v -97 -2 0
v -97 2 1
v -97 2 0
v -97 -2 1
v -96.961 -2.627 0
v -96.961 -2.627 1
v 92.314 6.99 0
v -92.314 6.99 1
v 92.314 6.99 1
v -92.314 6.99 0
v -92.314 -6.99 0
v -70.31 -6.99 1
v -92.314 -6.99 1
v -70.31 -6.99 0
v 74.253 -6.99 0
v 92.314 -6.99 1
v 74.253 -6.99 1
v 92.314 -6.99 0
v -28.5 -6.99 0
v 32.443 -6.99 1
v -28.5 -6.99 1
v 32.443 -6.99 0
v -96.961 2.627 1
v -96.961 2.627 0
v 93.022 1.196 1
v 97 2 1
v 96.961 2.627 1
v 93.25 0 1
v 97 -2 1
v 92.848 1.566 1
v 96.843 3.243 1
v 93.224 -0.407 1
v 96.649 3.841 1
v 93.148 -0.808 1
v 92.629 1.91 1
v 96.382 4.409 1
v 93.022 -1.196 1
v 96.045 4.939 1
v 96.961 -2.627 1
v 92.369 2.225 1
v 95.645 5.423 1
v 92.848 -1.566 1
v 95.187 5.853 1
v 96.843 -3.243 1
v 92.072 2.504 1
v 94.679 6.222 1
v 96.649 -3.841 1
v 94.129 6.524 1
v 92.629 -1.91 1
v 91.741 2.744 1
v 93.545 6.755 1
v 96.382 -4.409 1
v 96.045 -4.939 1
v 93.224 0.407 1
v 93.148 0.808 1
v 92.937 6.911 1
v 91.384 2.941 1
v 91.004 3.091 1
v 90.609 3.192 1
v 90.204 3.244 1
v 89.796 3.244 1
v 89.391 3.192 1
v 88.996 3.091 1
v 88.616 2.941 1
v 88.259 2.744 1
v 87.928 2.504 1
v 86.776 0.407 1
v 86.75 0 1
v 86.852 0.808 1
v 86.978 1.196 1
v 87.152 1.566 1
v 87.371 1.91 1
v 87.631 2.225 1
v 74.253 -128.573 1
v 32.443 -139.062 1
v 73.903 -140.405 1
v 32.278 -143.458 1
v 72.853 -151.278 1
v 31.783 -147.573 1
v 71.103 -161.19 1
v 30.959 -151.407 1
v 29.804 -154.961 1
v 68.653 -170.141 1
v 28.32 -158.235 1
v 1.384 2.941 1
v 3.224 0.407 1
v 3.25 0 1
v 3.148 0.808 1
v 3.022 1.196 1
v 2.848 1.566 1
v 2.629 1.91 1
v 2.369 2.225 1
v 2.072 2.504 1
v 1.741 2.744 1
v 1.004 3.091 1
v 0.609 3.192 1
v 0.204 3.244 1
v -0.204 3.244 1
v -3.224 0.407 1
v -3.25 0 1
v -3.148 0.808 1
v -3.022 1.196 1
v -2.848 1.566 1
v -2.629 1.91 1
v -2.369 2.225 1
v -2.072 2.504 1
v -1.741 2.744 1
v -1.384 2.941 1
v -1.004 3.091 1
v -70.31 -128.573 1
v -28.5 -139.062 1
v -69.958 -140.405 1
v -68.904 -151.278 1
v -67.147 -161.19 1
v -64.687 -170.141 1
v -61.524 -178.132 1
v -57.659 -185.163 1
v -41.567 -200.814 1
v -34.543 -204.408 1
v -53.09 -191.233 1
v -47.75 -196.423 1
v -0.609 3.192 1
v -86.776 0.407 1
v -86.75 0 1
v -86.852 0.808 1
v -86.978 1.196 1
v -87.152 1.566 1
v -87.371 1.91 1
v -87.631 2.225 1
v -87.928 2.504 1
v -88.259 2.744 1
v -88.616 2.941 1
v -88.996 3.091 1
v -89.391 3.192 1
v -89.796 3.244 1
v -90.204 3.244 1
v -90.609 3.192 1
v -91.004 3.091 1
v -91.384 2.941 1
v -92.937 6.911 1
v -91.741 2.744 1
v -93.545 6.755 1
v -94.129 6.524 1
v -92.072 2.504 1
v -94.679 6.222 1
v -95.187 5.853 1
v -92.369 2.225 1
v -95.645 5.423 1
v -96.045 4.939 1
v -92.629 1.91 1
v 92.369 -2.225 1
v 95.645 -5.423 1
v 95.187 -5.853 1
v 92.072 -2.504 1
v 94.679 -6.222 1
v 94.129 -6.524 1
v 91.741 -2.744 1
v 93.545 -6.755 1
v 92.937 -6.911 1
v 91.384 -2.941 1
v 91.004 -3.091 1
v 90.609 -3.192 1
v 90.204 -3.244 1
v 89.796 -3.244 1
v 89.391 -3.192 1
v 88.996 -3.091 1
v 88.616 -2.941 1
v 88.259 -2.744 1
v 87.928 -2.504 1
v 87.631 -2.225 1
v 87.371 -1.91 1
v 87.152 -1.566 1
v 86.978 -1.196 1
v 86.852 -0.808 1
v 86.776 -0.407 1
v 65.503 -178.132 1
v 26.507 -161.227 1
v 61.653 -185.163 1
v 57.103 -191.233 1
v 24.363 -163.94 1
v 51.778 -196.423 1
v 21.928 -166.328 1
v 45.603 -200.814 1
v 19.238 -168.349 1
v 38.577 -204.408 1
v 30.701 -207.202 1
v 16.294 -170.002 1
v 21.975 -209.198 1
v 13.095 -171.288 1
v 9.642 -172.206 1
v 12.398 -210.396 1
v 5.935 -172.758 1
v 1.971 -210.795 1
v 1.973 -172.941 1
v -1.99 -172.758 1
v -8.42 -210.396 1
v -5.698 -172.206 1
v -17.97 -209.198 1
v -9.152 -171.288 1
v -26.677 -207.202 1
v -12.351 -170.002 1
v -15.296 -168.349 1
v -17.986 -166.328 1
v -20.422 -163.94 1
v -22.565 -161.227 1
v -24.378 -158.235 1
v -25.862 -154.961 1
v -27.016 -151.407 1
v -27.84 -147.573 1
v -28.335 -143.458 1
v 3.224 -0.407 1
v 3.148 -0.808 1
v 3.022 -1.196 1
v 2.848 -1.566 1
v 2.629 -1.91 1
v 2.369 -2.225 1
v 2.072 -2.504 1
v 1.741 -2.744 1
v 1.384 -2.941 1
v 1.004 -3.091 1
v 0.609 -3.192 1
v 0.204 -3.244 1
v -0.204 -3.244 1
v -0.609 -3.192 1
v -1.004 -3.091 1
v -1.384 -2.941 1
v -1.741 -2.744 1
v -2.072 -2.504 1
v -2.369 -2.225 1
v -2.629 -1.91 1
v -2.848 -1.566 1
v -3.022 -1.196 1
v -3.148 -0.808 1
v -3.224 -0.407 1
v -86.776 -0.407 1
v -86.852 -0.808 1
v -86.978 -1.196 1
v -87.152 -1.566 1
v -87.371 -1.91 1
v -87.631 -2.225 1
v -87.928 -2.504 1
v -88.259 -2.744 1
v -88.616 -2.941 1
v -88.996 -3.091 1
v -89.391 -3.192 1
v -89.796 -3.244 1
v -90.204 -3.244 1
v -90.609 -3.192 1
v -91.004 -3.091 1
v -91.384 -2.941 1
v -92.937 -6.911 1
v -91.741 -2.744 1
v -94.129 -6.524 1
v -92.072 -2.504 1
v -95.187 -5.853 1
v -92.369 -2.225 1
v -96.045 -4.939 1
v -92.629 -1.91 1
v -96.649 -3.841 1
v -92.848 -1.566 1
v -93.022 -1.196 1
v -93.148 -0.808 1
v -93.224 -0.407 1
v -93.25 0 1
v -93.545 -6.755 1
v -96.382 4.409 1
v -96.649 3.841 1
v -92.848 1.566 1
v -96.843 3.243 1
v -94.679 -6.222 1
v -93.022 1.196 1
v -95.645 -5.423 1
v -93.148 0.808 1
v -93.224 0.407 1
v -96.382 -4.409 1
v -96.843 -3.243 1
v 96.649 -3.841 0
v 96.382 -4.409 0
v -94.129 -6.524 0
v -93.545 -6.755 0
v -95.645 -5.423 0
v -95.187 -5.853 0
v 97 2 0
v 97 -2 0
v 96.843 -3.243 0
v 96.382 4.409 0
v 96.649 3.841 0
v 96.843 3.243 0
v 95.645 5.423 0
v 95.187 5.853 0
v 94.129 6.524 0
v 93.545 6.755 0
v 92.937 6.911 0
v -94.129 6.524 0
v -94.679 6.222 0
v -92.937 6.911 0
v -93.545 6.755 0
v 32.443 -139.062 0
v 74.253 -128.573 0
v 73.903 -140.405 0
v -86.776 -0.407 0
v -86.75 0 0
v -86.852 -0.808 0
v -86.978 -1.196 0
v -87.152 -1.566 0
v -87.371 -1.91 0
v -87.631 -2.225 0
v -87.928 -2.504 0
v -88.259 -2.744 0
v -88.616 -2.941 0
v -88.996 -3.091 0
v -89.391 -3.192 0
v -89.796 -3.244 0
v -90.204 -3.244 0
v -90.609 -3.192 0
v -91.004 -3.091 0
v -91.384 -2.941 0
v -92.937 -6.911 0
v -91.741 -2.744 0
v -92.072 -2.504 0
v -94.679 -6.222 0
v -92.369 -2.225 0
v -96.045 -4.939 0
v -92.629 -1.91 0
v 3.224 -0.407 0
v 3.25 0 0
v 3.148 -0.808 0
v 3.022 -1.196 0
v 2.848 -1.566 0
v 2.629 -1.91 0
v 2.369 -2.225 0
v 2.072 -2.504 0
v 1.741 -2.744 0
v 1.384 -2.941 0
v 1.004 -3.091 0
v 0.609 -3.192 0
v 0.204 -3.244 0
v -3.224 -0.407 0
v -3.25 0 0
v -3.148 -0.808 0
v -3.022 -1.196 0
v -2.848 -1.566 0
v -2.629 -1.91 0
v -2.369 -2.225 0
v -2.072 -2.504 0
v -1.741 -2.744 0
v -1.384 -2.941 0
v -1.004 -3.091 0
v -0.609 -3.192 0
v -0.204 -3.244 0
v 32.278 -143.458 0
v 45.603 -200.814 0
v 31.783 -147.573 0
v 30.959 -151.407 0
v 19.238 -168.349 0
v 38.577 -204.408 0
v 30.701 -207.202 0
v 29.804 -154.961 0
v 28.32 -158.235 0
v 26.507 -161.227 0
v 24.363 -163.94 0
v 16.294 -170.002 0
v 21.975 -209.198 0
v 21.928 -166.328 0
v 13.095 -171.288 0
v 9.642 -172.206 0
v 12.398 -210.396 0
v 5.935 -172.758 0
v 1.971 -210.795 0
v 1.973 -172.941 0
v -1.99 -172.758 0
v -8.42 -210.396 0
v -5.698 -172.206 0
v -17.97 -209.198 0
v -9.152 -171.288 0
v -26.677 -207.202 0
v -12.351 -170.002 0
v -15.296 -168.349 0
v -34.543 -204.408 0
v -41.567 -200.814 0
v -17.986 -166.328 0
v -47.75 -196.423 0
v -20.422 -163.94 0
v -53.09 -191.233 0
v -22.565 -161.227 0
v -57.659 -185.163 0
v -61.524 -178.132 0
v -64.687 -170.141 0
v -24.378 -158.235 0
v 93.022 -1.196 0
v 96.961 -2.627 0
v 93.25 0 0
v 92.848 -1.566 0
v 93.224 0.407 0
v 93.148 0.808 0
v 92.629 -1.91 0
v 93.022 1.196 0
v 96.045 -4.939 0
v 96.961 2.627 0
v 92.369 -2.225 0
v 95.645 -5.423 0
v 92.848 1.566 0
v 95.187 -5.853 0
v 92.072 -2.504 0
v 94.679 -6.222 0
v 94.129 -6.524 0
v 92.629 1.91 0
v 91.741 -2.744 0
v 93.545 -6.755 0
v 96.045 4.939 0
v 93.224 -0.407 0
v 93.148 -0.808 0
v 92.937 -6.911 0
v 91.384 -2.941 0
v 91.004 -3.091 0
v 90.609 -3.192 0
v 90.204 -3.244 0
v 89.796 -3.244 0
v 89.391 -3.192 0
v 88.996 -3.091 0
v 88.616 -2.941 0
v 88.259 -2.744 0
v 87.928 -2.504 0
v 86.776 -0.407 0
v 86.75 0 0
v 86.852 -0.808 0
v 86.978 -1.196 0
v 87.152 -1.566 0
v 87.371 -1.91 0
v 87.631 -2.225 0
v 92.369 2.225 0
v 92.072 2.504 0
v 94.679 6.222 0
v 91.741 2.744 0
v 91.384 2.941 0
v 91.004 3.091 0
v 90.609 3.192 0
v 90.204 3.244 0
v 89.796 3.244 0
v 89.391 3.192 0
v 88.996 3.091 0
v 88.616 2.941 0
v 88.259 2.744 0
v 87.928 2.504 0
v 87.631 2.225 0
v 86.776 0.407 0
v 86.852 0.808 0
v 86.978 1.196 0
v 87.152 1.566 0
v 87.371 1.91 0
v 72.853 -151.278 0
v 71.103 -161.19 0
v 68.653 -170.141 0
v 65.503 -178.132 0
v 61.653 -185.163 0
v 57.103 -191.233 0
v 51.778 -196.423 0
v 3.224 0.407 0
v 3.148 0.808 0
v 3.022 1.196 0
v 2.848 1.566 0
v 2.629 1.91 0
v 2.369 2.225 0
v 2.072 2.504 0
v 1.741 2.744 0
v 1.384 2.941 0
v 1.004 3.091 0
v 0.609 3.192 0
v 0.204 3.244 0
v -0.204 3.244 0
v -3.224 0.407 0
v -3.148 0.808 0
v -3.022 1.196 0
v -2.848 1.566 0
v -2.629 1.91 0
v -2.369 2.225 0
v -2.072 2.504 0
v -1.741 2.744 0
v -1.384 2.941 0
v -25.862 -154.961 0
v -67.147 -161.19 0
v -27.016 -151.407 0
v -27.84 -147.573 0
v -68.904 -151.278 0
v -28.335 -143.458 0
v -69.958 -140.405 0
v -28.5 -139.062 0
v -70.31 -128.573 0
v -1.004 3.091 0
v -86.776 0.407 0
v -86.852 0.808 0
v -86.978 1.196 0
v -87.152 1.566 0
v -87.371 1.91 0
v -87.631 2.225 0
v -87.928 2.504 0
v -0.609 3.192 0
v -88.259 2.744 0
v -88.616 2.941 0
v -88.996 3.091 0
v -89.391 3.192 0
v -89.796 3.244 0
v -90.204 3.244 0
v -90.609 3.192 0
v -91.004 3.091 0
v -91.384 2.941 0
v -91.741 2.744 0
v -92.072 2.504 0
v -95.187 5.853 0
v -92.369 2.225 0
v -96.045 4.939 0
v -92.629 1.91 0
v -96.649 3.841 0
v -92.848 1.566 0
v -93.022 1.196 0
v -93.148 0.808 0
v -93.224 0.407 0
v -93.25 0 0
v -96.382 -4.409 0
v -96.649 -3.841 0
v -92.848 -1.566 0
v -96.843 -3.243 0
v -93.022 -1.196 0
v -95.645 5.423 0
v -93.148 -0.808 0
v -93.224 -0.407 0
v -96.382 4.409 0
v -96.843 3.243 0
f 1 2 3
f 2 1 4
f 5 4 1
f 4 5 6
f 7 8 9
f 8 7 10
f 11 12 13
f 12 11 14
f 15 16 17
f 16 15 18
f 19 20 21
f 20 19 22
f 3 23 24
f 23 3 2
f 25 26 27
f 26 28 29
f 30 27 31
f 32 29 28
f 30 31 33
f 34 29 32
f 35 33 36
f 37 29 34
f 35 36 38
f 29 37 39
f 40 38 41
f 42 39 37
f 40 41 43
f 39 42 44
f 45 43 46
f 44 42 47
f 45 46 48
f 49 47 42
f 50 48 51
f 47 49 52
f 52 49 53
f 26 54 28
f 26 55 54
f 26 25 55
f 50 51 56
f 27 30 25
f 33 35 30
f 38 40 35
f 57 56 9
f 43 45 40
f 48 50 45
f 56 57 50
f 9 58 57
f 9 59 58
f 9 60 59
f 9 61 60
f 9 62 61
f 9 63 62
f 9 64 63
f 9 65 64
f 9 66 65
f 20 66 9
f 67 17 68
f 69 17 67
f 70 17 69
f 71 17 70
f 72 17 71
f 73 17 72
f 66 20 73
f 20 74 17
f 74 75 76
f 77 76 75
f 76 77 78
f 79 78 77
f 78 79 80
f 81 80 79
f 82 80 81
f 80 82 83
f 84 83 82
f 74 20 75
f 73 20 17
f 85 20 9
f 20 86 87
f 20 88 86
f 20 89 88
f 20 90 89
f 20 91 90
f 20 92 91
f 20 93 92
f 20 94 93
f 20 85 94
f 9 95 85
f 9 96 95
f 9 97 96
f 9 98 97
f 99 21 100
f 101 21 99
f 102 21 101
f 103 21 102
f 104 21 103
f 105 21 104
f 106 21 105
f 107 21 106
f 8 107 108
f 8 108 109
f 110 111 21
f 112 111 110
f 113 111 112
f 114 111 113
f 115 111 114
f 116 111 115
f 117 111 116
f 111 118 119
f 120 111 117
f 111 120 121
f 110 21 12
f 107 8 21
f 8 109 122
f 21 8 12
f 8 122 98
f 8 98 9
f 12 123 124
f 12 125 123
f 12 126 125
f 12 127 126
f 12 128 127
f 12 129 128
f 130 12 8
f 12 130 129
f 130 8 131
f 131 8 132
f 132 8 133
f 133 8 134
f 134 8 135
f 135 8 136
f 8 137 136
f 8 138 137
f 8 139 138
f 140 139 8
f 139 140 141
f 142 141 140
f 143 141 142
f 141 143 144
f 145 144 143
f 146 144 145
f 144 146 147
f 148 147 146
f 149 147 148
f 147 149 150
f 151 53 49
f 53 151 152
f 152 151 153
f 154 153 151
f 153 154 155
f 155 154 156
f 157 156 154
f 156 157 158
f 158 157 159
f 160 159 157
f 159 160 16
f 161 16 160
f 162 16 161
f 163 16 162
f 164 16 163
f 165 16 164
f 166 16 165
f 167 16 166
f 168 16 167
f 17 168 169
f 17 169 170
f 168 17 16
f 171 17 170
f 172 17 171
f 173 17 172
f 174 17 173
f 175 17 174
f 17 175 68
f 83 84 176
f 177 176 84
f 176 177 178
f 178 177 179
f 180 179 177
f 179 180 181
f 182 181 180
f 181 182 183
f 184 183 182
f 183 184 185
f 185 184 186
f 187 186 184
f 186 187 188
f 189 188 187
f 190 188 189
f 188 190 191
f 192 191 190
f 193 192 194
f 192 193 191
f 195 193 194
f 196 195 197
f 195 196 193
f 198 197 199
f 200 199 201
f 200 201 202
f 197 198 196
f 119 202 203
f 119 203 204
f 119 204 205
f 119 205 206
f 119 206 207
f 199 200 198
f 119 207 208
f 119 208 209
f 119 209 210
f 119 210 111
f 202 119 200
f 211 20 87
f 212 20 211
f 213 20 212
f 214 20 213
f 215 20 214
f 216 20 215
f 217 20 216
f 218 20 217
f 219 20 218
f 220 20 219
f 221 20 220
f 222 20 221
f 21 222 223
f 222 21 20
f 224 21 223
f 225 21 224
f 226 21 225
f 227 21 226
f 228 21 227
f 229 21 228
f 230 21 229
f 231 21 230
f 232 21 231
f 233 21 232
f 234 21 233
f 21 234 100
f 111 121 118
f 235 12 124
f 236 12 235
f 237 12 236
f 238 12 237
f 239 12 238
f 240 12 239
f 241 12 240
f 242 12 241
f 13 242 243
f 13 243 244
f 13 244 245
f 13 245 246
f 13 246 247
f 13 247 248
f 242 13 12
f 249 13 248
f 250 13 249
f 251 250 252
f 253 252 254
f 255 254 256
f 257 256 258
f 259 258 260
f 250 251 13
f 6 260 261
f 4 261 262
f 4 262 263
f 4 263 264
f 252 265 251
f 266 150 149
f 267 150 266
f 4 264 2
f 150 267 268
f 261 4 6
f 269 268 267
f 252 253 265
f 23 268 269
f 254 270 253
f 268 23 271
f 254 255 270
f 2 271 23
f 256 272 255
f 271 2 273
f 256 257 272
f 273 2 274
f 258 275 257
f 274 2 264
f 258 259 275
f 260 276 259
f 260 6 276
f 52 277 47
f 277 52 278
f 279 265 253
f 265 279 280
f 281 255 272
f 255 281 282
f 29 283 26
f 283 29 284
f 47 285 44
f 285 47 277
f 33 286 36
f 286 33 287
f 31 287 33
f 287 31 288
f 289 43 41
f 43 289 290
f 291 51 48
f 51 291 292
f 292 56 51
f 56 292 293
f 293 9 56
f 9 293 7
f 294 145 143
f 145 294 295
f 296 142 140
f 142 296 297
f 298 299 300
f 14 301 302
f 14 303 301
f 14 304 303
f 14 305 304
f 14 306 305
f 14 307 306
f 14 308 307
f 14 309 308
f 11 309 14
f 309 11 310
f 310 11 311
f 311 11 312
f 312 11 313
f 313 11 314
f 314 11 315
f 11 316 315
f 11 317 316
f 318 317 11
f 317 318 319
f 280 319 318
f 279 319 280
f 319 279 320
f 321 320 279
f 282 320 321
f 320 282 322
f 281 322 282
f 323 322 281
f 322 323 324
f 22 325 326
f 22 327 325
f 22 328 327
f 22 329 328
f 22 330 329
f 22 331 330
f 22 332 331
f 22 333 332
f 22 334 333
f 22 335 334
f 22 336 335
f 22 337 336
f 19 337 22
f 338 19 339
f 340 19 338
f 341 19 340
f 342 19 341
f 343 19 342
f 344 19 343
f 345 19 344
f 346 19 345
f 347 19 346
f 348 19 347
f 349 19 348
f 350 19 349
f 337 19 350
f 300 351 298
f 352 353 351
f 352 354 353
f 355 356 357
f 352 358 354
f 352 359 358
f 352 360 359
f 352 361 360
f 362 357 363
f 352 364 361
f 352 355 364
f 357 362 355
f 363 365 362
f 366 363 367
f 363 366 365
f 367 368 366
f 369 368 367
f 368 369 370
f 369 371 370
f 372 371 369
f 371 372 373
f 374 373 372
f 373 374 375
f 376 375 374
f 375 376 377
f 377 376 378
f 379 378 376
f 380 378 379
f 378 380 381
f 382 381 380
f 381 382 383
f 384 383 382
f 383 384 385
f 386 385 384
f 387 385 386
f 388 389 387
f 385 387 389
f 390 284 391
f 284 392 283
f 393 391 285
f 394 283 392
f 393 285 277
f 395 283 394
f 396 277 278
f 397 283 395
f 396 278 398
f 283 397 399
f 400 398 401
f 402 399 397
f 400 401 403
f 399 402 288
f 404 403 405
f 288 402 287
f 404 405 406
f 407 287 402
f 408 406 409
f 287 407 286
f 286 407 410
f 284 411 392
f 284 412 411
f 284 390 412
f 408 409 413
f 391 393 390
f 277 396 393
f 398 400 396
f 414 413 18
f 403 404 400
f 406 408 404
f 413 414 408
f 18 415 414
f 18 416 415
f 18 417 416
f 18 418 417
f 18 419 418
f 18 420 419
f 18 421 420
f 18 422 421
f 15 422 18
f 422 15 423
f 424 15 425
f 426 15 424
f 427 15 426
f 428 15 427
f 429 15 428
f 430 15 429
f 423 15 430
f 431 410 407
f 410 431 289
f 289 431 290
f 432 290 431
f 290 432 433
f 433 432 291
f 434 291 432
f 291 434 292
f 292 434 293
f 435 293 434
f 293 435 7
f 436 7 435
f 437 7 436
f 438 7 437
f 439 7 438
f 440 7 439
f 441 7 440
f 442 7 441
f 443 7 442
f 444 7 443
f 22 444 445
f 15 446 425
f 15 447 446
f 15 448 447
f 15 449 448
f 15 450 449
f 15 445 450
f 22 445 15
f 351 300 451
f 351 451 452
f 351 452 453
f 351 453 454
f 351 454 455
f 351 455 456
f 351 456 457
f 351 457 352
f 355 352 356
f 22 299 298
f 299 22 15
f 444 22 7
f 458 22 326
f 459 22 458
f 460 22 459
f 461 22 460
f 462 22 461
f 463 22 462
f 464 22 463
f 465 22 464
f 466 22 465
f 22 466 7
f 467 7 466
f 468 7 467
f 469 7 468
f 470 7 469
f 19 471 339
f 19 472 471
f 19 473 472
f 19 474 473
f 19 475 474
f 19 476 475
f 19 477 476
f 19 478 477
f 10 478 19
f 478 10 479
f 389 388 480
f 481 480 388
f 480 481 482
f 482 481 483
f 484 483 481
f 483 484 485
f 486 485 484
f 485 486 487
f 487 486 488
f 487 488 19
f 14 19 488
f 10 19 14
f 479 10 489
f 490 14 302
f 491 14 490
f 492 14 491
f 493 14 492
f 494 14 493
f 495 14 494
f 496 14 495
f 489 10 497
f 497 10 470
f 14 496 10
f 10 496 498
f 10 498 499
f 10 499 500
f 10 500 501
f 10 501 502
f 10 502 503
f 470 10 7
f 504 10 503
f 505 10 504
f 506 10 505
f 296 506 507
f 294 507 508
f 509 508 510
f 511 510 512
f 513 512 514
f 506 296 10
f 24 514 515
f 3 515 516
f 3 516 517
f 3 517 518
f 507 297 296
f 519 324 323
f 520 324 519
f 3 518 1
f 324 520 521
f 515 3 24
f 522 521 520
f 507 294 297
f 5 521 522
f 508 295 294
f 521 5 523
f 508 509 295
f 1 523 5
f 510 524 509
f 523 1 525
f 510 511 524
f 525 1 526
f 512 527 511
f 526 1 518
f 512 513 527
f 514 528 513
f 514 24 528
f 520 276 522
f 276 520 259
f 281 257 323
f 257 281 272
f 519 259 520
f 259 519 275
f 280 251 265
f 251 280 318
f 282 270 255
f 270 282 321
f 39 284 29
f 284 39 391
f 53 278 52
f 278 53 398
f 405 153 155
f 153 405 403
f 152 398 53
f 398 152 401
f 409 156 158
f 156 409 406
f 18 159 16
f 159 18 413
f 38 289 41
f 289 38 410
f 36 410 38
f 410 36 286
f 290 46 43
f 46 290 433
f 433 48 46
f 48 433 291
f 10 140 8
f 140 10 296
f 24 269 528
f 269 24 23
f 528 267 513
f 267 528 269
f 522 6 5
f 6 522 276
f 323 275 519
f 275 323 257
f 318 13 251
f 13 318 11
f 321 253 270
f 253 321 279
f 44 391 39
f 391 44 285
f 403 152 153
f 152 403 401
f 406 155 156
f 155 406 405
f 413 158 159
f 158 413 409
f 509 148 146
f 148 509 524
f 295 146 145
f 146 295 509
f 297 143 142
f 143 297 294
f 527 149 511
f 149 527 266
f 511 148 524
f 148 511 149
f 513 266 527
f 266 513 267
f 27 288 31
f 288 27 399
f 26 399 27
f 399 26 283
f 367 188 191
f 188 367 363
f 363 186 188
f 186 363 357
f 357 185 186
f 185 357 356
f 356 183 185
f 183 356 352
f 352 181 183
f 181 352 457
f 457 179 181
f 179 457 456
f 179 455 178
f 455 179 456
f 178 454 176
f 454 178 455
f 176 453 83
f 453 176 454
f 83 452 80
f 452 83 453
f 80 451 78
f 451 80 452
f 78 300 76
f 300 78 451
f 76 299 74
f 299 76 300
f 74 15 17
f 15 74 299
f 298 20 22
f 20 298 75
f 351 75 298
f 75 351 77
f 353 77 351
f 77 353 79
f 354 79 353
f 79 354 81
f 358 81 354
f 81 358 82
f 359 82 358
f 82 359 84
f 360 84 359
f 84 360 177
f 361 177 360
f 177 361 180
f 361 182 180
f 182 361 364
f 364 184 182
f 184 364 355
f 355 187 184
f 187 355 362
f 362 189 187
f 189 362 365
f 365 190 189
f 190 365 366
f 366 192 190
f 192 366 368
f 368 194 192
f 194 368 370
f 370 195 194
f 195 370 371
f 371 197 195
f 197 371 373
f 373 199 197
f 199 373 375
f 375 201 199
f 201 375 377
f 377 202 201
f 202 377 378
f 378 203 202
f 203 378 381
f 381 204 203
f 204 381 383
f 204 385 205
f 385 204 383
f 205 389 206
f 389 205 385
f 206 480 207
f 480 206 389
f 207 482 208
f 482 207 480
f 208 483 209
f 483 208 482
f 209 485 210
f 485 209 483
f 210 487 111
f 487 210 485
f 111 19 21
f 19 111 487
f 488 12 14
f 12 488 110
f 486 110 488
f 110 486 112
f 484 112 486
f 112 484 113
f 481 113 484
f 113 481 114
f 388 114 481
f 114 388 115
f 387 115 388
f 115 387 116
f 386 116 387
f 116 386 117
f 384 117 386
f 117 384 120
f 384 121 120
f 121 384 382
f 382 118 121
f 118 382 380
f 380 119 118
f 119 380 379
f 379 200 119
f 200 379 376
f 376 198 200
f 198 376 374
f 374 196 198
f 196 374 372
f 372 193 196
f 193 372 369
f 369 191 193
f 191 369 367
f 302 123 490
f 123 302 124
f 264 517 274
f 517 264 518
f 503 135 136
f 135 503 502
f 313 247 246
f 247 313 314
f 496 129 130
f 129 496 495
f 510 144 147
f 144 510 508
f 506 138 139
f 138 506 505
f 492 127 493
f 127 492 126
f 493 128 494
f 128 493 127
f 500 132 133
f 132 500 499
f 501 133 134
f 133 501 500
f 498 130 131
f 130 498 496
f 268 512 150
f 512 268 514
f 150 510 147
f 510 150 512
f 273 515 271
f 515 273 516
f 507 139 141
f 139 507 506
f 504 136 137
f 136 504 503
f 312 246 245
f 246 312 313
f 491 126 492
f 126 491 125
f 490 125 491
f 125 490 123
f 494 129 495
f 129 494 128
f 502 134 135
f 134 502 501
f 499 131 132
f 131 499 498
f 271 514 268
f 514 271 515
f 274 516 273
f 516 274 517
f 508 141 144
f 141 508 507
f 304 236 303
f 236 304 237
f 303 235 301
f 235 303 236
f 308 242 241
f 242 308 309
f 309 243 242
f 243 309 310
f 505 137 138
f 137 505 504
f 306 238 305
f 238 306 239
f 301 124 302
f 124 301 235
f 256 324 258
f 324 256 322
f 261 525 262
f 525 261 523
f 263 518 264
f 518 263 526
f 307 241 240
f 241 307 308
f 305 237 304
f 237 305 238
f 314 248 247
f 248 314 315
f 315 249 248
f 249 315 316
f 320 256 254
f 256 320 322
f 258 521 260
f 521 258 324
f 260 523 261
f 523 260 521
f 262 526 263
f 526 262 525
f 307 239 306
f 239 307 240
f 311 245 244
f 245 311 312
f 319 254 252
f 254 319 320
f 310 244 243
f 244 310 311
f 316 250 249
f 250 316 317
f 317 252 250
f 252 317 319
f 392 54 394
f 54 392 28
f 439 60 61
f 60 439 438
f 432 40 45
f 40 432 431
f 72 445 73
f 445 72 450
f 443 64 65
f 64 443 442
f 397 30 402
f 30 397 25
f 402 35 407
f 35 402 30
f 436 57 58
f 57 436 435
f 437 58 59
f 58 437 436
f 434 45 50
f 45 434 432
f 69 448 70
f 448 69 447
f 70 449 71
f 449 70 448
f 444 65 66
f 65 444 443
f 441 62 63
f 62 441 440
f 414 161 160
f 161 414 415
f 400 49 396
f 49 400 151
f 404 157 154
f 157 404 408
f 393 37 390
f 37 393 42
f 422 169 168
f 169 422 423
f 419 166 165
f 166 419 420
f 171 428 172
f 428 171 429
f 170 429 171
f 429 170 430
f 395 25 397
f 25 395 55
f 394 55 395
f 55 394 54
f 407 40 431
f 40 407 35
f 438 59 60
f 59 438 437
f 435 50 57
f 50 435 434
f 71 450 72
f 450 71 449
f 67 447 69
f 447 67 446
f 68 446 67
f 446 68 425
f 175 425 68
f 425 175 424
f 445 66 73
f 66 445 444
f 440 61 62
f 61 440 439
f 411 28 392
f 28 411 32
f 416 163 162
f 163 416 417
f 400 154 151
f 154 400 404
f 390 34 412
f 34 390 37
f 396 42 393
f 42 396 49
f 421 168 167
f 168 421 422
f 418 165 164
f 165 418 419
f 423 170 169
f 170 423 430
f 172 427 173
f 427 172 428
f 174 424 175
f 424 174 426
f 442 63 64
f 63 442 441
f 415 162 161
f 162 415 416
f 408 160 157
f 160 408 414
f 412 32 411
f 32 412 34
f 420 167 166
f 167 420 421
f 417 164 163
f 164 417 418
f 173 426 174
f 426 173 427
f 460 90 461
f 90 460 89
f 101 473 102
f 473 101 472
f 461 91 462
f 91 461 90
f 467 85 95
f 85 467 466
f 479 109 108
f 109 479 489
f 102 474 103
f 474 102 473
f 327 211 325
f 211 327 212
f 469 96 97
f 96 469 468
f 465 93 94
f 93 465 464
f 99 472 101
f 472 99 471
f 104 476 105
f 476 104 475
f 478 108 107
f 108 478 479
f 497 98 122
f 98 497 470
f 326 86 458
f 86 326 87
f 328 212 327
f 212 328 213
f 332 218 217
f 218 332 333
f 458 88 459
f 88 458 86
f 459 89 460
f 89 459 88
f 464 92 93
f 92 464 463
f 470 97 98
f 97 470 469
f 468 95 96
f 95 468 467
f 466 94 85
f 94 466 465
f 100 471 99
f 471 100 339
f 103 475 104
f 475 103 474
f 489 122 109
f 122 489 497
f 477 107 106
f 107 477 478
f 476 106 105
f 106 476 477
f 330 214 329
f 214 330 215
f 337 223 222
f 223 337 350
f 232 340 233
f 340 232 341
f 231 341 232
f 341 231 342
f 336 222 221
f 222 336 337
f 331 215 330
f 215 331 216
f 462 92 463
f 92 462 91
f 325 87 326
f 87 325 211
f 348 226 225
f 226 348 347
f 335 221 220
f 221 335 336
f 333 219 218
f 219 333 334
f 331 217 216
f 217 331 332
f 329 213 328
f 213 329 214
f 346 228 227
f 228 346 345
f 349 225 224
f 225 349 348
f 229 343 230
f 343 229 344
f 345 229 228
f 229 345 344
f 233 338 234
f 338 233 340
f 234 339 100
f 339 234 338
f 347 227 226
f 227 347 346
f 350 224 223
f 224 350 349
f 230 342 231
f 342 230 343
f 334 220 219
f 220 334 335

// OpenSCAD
$fn = 50;


difference() {
	union() {
		translate(v = [0, 0, 0]) {
			rotate(a = [0, 0, 0]) {
				hull() {
					translate(v = [-92.0000000000, 2.0000000000, 0]) {
						rotate(a = [0, 0, 0]) {
							translate(v = [0, 0, 0]) {
								rotate(a = [0, 0, 0]) {
									cylinder(h = 1, r = 5);
								}
							}
						}
					}
					translate(v = [92.0000000000, 2.0000000000, 0]) {
						rotate(a = [0, 0, 0]) {
							translate(v = [0, 0, 0]) {
								rotate(a = [0, 0, 0]) {
									cylinder(h = 1, r = 5);
								}
							}
						}
					}
					translate(v = [-92.0000000000, -2.0000000000, 0]) {
						rotate(a = [0, 0, 0]) {
							translate(v = [0, 0, 0]) {
								rotate(a = [0, 0, 0]) {
									cylinder(h = 1, r = 5);
								}
							}
						}
					}
					translate(v = [92.0000000000, -2.0000000000, 0]) {
						rotate(a = [0, 0, 0]) {
							translate(v = [0, 0, 0]) {
								rotate(a = [0, 0, 0]) {
									cylinder(h = 1, r = 5);
								}
							}
						}
					}
				}
			}
		}
		translate(v = [0, 0, 0]) {
			rotate(a = [0, 0, 0]) {
				linear_extrude(height = 1) {
					text(font = "DejaVu Sans Mono:style=Bold", halign = "center", size = 209.0000000000, text = "U", valign = "top");
				}
			}
		}
	}
	union() {
		translate(v = [-90.0000000000, 0.0000000000, -125.0000000000]) {
			rotate(a = [0, 0, 0]) {
				cylinder(h = 250, r = 3.2500000000);
			}
		}
		translate(v = [90.0000000000, 0.0000000000, -125.0000000000]) {
			rotate(a = [0, 0, 0]) {
				cylinder(h = 250, r = 3.2500000000);
			}
		}
		translate(v = [90.0000000000, 0.0000000000, -125.0000000000]) {
			rotate(a = [0, 0, 0]) {
				cylinder(h = 250, r = 3.2500000000);
			}
		}
		translate(v = [0, 0, -125.0000000000]) {
			rotate(a = [0, 0, 0]) {
				cylinder(h = 250, r = 3.2500000000);
			}
		}
	}
}
